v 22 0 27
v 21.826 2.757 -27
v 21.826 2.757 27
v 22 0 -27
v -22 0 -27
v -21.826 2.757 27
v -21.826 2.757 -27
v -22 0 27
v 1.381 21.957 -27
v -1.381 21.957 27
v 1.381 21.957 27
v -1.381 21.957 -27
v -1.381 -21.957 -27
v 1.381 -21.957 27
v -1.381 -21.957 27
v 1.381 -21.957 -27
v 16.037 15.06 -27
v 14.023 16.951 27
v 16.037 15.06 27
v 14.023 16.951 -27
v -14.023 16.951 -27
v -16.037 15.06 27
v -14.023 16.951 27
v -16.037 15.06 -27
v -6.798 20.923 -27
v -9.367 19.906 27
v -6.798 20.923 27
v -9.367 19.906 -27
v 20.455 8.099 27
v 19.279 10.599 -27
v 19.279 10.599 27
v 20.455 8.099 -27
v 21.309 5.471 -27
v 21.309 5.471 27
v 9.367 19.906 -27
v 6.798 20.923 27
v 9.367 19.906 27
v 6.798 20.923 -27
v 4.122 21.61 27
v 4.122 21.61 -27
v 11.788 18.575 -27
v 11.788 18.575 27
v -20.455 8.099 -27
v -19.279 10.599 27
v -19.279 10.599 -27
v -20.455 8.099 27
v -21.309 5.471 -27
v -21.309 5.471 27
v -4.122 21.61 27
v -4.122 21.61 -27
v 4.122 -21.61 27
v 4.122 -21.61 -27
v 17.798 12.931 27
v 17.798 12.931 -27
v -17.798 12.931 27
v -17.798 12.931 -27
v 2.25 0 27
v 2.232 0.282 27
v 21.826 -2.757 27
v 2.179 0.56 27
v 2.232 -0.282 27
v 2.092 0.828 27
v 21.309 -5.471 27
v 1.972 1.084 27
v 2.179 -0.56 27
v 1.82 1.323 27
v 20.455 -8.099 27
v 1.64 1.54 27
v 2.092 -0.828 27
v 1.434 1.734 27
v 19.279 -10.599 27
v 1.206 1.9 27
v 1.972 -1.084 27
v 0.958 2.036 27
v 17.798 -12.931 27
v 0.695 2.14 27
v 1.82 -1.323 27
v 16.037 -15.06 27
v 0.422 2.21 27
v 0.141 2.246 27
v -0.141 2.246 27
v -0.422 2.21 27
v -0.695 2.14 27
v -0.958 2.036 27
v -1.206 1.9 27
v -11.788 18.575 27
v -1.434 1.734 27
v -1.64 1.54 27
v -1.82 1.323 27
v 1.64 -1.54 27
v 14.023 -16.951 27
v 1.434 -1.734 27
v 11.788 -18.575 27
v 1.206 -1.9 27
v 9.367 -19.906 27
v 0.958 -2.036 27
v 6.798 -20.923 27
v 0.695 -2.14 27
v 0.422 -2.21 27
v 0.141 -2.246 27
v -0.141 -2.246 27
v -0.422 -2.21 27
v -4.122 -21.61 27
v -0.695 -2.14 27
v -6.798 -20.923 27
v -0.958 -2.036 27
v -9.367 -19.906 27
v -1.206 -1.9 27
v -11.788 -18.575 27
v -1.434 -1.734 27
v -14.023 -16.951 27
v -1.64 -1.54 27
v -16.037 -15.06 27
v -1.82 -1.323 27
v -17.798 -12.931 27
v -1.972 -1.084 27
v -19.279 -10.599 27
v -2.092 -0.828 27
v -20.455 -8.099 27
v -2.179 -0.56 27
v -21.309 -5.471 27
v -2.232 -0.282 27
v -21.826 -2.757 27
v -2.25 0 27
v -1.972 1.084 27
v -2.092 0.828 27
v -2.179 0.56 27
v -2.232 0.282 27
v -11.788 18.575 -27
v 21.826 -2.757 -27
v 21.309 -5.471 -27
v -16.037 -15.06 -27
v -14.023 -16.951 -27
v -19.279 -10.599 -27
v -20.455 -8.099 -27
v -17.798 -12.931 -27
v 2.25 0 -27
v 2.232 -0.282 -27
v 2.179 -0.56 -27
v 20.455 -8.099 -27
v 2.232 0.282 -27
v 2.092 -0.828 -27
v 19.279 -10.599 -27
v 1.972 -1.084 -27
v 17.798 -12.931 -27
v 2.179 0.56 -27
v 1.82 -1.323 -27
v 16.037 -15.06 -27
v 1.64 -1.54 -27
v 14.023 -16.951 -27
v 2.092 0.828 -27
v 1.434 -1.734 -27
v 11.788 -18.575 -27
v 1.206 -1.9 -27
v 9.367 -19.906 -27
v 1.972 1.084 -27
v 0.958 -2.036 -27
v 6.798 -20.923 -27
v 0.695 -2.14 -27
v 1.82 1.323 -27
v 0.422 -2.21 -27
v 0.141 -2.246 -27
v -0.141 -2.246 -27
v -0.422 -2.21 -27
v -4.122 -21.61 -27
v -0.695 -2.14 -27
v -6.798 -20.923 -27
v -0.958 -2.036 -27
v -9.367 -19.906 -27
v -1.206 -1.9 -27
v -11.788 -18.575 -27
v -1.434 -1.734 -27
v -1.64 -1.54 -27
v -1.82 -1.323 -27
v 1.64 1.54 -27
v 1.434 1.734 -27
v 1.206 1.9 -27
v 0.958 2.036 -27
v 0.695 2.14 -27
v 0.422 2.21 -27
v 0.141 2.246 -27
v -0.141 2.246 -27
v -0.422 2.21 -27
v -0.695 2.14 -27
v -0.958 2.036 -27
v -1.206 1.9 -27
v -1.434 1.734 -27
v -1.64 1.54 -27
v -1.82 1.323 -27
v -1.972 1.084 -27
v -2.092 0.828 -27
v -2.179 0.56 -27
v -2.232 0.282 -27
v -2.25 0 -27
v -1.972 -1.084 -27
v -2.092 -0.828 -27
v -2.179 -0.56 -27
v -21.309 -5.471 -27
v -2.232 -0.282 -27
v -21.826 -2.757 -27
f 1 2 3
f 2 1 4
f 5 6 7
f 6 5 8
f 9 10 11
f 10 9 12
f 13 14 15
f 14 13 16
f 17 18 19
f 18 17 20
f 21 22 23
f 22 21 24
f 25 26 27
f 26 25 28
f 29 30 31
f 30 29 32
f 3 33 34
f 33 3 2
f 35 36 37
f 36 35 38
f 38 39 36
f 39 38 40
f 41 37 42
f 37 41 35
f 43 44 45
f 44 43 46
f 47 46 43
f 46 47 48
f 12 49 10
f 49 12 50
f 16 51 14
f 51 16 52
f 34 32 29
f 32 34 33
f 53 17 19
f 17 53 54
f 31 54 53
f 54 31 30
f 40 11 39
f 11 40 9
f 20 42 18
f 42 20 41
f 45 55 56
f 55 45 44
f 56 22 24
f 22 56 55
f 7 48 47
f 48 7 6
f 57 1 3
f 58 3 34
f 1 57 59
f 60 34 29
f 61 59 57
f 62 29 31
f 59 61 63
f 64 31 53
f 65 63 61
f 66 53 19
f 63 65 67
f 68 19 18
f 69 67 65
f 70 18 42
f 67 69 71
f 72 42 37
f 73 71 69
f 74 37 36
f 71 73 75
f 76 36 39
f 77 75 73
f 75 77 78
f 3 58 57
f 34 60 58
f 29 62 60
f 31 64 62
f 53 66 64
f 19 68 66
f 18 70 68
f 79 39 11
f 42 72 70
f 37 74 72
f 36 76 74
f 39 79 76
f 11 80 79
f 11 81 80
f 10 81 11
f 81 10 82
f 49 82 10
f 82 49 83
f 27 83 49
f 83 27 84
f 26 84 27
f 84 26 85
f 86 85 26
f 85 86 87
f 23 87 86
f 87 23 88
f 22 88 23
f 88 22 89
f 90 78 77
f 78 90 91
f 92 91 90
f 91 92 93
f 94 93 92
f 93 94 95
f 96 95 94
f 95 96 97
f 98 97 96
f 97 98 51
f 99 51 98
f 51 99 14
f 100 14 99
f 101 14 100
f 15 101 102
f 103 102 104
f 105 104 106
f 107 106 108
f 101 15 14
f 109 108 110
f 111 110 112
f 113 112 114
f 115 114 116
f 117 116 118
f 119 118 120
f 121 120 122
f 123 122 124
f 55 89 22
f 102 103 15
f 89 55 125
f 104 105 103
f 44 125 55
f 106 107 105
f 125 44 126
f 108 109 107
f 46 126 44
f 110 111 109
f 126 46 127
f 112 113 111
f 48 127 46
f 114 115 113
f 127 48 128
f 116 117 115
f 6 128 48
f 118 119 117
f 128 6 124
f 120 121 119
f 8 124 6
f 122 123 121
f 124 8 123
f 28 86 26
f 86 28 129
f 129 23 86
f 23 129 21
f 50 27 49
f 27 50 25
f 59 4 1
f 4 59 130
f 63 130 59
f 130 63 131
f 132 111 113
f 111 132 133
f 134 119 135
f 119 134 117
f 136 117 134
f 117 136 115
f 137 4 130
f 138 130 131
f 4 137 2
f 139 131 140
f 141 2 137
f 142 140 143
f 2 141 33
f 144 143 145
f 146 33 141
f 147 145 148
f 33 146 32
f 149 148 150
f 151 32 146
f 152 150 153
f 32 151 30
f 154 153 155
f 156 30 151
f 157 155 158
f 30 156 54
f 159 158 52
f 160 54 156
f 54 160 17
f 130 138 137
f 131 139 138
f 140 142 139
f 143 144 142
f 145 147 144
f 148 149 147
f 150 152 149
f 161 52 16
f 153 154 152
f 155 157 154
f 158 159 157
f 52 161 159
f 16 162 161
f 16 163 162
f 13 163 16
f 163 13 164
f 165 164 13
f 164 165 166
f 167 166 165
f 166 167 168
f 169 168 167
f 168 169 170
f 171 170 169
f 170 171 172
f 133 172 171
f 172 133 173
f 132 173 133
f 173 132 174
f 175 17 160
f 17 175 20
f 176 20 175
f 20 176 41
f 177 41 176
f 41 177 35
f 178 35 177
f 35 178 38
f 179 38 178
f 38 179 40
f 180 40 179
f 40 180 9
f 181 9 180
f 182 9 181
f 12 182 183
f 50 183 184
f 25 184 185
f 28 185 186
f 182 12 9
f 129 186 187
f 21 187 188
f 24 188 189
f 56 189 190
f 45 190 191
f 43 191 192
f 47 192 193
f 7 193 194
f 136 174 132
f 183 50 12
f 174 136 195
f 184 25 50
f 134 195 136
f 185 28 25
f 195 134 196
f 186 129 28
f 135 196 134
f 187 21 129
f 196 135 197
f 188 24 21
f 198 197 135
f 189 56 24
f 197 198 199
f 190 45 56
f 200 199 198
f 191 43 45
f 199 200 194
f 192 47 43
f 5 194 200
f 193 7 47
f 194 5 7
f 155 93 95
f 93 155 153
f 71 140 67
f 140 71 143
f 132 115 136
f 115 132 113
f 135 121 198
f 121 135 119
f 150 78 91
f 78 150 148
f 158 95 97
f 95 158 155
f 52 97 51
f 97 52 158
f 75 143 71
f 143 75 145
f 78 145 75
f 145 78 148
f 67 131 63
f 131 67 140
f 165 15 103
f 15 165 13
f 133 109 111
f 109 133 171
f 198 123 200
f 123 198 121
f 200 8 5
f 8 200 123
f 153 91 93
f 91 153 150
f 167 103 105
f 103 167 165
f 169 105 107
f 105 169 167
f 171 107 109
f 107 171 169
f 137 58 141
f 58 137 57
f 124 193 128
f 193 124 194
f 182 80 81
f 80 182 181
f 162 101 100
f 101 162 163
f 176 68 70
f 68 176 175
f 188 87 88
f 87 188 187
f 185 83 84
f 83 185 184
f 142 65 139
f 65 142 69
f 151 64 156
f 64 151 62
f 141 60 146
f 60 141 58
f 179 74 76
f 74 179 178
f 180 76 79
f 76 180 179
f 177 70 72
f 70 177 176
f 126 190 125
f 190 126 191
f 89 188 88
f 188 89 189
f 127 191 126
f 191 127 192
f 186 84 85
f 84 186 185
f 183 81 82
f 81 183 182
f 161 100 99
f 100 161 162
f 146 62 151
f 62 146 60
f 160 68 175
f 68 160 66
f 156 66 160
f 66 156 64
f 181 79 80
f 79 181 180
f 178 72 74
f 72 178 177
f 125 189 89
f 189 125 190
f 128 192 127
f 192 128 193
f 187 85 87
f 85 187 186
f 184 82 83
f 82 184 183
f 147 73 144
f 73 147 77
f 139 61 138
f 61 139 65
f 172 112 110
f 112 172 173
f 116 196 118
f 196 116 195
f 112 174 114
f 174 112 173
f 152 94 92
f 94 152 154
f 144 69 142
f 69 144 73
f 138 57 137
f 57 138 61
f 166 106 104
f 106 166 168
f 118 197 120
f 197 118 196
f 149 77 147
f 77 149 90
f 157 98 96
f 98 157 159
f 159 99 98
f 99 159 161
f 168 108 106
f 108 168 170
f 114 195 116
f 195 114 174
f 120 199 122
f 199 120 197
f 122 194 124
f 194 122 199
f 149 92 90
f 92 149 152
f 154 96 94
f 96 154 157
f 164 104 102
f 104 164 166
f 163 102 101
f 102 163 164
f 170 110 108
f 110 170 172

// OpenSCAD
$fn = 50;


difference() {
	union() {
		translate(v = [0, 0, -27.0000000000]) {
			cylinder(h = 54, r = 22.0000000000);
		}
	}
	union() {
		translate(v = [0, 0, -100.0000000000]) {
			cylinder(h = 200, r = 2.2500000000);
		}
	}
}
